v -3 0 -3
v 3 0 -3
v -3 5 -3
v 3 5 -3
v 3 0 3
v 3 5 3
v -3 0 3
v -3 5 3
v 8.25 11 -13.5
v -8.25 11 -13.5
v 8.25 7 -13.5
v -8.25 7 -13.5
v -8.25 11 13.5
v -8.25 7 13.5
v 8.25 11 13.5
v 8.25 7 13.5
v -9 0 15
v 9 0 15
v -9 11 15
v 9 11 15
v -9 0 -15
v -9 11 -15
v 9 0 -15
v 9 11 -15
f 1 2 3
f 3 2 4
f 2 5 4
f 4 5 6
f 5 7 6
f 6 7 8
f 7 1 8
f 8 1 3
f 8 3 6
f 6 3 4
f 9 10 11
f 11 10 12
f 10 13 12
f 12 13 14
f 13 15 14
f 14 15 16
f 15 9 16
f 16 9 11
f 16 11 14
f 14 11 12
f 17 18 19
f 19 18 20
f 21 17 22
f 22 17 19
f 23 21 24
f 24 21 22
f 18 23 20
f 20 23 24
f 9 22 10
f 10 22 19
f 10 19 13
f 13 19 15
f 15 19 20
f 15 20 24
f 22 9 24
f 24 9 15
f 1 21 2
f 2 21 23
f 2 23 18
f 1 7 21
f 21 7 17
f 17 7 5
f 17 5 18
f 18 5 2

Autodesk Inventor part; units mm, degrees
ref_plane "YZ Plane" through (0, 0, 0) normal (1, 0, 0) x (0, 1, 0)
ref_plane "XZ Plane" through (0, 0, 0) normal (0, 1, 0) x (-1, 0, 0)
ref_plane "XY Plane" through (0, 0, 0) normal (0, 0, 1) x (1, 0, 0)
sketch "Sketch1" plane through (0, 0, 0) normal (0, 1, 0) x (-1, 0, 0)
  line L0 (9, 15) -> (-9, 15)
  line L1 (-9, 15) -> (-9, -15)
  line L2 (-9, -15) -> (9, -15)
  line L3 (9, -15) -> (9, 15)
  point P0 (0, 0)
  dimension "d0" = 30
  dimension "d1" = 18
  dimension "d7" = 15
  dimension "d8" = 9
extrude "Extrusion1" add sketch "Sketch1" along normal blind 11
sketch "Sketch2" plane through (0, 11, 0) normal (0, 1, 0) x (1, 0, 0)
  line L0 (-8.25, -13.5) -> (8.25, -13.5)
  line L1 (8.25, -13.5) -> (8.25, 13.5)
  line L2 (8.25, 13.5) -> (-8.25, 13.5)
  line L3 (-8.25, 13.5) -> (-8.25, -13.5)
  point P0 (0, 0)
  dimension "d4" = 27
  dimension "d5" = 16.5
  dimension "d6" = 13.5
  dimension "d9" = 8.25
extrude "Extrusion2" cut sketch "Sketch2" against normal blind 4
sketch "Sketch3" plane through (0, 0, 0) normal (0, -1, 0) x (1, 0, 0)
  line L0 (3, 3) -> (-3, 3)
  line L1 (-3, 3) -> (-3, -3)
  line L2 (-3, -3) -> (3, -3)
  line L3 (3, -3) -> (3, 3)
  point P0 (0, 0)
  dimension "d12" = 6
  dimension "d13" = 6
  dimension "d14" = 3
  dimension "d15" = 3
extrude "Extrusion3" cut sketch "Sketch3" against normal blind 5
equation "\"d7\" = 0.5 * d0"
equation "\"d8\" = 0.5 * d1"
equation "\"d6\" = 0.5 * d4"
equation "\"d9\" = 0.5 * d5"
equation "\"d14\" = 0.5 * d12"
equation "\"d15\" = 0.5 * d13"
properties part number "holder"
